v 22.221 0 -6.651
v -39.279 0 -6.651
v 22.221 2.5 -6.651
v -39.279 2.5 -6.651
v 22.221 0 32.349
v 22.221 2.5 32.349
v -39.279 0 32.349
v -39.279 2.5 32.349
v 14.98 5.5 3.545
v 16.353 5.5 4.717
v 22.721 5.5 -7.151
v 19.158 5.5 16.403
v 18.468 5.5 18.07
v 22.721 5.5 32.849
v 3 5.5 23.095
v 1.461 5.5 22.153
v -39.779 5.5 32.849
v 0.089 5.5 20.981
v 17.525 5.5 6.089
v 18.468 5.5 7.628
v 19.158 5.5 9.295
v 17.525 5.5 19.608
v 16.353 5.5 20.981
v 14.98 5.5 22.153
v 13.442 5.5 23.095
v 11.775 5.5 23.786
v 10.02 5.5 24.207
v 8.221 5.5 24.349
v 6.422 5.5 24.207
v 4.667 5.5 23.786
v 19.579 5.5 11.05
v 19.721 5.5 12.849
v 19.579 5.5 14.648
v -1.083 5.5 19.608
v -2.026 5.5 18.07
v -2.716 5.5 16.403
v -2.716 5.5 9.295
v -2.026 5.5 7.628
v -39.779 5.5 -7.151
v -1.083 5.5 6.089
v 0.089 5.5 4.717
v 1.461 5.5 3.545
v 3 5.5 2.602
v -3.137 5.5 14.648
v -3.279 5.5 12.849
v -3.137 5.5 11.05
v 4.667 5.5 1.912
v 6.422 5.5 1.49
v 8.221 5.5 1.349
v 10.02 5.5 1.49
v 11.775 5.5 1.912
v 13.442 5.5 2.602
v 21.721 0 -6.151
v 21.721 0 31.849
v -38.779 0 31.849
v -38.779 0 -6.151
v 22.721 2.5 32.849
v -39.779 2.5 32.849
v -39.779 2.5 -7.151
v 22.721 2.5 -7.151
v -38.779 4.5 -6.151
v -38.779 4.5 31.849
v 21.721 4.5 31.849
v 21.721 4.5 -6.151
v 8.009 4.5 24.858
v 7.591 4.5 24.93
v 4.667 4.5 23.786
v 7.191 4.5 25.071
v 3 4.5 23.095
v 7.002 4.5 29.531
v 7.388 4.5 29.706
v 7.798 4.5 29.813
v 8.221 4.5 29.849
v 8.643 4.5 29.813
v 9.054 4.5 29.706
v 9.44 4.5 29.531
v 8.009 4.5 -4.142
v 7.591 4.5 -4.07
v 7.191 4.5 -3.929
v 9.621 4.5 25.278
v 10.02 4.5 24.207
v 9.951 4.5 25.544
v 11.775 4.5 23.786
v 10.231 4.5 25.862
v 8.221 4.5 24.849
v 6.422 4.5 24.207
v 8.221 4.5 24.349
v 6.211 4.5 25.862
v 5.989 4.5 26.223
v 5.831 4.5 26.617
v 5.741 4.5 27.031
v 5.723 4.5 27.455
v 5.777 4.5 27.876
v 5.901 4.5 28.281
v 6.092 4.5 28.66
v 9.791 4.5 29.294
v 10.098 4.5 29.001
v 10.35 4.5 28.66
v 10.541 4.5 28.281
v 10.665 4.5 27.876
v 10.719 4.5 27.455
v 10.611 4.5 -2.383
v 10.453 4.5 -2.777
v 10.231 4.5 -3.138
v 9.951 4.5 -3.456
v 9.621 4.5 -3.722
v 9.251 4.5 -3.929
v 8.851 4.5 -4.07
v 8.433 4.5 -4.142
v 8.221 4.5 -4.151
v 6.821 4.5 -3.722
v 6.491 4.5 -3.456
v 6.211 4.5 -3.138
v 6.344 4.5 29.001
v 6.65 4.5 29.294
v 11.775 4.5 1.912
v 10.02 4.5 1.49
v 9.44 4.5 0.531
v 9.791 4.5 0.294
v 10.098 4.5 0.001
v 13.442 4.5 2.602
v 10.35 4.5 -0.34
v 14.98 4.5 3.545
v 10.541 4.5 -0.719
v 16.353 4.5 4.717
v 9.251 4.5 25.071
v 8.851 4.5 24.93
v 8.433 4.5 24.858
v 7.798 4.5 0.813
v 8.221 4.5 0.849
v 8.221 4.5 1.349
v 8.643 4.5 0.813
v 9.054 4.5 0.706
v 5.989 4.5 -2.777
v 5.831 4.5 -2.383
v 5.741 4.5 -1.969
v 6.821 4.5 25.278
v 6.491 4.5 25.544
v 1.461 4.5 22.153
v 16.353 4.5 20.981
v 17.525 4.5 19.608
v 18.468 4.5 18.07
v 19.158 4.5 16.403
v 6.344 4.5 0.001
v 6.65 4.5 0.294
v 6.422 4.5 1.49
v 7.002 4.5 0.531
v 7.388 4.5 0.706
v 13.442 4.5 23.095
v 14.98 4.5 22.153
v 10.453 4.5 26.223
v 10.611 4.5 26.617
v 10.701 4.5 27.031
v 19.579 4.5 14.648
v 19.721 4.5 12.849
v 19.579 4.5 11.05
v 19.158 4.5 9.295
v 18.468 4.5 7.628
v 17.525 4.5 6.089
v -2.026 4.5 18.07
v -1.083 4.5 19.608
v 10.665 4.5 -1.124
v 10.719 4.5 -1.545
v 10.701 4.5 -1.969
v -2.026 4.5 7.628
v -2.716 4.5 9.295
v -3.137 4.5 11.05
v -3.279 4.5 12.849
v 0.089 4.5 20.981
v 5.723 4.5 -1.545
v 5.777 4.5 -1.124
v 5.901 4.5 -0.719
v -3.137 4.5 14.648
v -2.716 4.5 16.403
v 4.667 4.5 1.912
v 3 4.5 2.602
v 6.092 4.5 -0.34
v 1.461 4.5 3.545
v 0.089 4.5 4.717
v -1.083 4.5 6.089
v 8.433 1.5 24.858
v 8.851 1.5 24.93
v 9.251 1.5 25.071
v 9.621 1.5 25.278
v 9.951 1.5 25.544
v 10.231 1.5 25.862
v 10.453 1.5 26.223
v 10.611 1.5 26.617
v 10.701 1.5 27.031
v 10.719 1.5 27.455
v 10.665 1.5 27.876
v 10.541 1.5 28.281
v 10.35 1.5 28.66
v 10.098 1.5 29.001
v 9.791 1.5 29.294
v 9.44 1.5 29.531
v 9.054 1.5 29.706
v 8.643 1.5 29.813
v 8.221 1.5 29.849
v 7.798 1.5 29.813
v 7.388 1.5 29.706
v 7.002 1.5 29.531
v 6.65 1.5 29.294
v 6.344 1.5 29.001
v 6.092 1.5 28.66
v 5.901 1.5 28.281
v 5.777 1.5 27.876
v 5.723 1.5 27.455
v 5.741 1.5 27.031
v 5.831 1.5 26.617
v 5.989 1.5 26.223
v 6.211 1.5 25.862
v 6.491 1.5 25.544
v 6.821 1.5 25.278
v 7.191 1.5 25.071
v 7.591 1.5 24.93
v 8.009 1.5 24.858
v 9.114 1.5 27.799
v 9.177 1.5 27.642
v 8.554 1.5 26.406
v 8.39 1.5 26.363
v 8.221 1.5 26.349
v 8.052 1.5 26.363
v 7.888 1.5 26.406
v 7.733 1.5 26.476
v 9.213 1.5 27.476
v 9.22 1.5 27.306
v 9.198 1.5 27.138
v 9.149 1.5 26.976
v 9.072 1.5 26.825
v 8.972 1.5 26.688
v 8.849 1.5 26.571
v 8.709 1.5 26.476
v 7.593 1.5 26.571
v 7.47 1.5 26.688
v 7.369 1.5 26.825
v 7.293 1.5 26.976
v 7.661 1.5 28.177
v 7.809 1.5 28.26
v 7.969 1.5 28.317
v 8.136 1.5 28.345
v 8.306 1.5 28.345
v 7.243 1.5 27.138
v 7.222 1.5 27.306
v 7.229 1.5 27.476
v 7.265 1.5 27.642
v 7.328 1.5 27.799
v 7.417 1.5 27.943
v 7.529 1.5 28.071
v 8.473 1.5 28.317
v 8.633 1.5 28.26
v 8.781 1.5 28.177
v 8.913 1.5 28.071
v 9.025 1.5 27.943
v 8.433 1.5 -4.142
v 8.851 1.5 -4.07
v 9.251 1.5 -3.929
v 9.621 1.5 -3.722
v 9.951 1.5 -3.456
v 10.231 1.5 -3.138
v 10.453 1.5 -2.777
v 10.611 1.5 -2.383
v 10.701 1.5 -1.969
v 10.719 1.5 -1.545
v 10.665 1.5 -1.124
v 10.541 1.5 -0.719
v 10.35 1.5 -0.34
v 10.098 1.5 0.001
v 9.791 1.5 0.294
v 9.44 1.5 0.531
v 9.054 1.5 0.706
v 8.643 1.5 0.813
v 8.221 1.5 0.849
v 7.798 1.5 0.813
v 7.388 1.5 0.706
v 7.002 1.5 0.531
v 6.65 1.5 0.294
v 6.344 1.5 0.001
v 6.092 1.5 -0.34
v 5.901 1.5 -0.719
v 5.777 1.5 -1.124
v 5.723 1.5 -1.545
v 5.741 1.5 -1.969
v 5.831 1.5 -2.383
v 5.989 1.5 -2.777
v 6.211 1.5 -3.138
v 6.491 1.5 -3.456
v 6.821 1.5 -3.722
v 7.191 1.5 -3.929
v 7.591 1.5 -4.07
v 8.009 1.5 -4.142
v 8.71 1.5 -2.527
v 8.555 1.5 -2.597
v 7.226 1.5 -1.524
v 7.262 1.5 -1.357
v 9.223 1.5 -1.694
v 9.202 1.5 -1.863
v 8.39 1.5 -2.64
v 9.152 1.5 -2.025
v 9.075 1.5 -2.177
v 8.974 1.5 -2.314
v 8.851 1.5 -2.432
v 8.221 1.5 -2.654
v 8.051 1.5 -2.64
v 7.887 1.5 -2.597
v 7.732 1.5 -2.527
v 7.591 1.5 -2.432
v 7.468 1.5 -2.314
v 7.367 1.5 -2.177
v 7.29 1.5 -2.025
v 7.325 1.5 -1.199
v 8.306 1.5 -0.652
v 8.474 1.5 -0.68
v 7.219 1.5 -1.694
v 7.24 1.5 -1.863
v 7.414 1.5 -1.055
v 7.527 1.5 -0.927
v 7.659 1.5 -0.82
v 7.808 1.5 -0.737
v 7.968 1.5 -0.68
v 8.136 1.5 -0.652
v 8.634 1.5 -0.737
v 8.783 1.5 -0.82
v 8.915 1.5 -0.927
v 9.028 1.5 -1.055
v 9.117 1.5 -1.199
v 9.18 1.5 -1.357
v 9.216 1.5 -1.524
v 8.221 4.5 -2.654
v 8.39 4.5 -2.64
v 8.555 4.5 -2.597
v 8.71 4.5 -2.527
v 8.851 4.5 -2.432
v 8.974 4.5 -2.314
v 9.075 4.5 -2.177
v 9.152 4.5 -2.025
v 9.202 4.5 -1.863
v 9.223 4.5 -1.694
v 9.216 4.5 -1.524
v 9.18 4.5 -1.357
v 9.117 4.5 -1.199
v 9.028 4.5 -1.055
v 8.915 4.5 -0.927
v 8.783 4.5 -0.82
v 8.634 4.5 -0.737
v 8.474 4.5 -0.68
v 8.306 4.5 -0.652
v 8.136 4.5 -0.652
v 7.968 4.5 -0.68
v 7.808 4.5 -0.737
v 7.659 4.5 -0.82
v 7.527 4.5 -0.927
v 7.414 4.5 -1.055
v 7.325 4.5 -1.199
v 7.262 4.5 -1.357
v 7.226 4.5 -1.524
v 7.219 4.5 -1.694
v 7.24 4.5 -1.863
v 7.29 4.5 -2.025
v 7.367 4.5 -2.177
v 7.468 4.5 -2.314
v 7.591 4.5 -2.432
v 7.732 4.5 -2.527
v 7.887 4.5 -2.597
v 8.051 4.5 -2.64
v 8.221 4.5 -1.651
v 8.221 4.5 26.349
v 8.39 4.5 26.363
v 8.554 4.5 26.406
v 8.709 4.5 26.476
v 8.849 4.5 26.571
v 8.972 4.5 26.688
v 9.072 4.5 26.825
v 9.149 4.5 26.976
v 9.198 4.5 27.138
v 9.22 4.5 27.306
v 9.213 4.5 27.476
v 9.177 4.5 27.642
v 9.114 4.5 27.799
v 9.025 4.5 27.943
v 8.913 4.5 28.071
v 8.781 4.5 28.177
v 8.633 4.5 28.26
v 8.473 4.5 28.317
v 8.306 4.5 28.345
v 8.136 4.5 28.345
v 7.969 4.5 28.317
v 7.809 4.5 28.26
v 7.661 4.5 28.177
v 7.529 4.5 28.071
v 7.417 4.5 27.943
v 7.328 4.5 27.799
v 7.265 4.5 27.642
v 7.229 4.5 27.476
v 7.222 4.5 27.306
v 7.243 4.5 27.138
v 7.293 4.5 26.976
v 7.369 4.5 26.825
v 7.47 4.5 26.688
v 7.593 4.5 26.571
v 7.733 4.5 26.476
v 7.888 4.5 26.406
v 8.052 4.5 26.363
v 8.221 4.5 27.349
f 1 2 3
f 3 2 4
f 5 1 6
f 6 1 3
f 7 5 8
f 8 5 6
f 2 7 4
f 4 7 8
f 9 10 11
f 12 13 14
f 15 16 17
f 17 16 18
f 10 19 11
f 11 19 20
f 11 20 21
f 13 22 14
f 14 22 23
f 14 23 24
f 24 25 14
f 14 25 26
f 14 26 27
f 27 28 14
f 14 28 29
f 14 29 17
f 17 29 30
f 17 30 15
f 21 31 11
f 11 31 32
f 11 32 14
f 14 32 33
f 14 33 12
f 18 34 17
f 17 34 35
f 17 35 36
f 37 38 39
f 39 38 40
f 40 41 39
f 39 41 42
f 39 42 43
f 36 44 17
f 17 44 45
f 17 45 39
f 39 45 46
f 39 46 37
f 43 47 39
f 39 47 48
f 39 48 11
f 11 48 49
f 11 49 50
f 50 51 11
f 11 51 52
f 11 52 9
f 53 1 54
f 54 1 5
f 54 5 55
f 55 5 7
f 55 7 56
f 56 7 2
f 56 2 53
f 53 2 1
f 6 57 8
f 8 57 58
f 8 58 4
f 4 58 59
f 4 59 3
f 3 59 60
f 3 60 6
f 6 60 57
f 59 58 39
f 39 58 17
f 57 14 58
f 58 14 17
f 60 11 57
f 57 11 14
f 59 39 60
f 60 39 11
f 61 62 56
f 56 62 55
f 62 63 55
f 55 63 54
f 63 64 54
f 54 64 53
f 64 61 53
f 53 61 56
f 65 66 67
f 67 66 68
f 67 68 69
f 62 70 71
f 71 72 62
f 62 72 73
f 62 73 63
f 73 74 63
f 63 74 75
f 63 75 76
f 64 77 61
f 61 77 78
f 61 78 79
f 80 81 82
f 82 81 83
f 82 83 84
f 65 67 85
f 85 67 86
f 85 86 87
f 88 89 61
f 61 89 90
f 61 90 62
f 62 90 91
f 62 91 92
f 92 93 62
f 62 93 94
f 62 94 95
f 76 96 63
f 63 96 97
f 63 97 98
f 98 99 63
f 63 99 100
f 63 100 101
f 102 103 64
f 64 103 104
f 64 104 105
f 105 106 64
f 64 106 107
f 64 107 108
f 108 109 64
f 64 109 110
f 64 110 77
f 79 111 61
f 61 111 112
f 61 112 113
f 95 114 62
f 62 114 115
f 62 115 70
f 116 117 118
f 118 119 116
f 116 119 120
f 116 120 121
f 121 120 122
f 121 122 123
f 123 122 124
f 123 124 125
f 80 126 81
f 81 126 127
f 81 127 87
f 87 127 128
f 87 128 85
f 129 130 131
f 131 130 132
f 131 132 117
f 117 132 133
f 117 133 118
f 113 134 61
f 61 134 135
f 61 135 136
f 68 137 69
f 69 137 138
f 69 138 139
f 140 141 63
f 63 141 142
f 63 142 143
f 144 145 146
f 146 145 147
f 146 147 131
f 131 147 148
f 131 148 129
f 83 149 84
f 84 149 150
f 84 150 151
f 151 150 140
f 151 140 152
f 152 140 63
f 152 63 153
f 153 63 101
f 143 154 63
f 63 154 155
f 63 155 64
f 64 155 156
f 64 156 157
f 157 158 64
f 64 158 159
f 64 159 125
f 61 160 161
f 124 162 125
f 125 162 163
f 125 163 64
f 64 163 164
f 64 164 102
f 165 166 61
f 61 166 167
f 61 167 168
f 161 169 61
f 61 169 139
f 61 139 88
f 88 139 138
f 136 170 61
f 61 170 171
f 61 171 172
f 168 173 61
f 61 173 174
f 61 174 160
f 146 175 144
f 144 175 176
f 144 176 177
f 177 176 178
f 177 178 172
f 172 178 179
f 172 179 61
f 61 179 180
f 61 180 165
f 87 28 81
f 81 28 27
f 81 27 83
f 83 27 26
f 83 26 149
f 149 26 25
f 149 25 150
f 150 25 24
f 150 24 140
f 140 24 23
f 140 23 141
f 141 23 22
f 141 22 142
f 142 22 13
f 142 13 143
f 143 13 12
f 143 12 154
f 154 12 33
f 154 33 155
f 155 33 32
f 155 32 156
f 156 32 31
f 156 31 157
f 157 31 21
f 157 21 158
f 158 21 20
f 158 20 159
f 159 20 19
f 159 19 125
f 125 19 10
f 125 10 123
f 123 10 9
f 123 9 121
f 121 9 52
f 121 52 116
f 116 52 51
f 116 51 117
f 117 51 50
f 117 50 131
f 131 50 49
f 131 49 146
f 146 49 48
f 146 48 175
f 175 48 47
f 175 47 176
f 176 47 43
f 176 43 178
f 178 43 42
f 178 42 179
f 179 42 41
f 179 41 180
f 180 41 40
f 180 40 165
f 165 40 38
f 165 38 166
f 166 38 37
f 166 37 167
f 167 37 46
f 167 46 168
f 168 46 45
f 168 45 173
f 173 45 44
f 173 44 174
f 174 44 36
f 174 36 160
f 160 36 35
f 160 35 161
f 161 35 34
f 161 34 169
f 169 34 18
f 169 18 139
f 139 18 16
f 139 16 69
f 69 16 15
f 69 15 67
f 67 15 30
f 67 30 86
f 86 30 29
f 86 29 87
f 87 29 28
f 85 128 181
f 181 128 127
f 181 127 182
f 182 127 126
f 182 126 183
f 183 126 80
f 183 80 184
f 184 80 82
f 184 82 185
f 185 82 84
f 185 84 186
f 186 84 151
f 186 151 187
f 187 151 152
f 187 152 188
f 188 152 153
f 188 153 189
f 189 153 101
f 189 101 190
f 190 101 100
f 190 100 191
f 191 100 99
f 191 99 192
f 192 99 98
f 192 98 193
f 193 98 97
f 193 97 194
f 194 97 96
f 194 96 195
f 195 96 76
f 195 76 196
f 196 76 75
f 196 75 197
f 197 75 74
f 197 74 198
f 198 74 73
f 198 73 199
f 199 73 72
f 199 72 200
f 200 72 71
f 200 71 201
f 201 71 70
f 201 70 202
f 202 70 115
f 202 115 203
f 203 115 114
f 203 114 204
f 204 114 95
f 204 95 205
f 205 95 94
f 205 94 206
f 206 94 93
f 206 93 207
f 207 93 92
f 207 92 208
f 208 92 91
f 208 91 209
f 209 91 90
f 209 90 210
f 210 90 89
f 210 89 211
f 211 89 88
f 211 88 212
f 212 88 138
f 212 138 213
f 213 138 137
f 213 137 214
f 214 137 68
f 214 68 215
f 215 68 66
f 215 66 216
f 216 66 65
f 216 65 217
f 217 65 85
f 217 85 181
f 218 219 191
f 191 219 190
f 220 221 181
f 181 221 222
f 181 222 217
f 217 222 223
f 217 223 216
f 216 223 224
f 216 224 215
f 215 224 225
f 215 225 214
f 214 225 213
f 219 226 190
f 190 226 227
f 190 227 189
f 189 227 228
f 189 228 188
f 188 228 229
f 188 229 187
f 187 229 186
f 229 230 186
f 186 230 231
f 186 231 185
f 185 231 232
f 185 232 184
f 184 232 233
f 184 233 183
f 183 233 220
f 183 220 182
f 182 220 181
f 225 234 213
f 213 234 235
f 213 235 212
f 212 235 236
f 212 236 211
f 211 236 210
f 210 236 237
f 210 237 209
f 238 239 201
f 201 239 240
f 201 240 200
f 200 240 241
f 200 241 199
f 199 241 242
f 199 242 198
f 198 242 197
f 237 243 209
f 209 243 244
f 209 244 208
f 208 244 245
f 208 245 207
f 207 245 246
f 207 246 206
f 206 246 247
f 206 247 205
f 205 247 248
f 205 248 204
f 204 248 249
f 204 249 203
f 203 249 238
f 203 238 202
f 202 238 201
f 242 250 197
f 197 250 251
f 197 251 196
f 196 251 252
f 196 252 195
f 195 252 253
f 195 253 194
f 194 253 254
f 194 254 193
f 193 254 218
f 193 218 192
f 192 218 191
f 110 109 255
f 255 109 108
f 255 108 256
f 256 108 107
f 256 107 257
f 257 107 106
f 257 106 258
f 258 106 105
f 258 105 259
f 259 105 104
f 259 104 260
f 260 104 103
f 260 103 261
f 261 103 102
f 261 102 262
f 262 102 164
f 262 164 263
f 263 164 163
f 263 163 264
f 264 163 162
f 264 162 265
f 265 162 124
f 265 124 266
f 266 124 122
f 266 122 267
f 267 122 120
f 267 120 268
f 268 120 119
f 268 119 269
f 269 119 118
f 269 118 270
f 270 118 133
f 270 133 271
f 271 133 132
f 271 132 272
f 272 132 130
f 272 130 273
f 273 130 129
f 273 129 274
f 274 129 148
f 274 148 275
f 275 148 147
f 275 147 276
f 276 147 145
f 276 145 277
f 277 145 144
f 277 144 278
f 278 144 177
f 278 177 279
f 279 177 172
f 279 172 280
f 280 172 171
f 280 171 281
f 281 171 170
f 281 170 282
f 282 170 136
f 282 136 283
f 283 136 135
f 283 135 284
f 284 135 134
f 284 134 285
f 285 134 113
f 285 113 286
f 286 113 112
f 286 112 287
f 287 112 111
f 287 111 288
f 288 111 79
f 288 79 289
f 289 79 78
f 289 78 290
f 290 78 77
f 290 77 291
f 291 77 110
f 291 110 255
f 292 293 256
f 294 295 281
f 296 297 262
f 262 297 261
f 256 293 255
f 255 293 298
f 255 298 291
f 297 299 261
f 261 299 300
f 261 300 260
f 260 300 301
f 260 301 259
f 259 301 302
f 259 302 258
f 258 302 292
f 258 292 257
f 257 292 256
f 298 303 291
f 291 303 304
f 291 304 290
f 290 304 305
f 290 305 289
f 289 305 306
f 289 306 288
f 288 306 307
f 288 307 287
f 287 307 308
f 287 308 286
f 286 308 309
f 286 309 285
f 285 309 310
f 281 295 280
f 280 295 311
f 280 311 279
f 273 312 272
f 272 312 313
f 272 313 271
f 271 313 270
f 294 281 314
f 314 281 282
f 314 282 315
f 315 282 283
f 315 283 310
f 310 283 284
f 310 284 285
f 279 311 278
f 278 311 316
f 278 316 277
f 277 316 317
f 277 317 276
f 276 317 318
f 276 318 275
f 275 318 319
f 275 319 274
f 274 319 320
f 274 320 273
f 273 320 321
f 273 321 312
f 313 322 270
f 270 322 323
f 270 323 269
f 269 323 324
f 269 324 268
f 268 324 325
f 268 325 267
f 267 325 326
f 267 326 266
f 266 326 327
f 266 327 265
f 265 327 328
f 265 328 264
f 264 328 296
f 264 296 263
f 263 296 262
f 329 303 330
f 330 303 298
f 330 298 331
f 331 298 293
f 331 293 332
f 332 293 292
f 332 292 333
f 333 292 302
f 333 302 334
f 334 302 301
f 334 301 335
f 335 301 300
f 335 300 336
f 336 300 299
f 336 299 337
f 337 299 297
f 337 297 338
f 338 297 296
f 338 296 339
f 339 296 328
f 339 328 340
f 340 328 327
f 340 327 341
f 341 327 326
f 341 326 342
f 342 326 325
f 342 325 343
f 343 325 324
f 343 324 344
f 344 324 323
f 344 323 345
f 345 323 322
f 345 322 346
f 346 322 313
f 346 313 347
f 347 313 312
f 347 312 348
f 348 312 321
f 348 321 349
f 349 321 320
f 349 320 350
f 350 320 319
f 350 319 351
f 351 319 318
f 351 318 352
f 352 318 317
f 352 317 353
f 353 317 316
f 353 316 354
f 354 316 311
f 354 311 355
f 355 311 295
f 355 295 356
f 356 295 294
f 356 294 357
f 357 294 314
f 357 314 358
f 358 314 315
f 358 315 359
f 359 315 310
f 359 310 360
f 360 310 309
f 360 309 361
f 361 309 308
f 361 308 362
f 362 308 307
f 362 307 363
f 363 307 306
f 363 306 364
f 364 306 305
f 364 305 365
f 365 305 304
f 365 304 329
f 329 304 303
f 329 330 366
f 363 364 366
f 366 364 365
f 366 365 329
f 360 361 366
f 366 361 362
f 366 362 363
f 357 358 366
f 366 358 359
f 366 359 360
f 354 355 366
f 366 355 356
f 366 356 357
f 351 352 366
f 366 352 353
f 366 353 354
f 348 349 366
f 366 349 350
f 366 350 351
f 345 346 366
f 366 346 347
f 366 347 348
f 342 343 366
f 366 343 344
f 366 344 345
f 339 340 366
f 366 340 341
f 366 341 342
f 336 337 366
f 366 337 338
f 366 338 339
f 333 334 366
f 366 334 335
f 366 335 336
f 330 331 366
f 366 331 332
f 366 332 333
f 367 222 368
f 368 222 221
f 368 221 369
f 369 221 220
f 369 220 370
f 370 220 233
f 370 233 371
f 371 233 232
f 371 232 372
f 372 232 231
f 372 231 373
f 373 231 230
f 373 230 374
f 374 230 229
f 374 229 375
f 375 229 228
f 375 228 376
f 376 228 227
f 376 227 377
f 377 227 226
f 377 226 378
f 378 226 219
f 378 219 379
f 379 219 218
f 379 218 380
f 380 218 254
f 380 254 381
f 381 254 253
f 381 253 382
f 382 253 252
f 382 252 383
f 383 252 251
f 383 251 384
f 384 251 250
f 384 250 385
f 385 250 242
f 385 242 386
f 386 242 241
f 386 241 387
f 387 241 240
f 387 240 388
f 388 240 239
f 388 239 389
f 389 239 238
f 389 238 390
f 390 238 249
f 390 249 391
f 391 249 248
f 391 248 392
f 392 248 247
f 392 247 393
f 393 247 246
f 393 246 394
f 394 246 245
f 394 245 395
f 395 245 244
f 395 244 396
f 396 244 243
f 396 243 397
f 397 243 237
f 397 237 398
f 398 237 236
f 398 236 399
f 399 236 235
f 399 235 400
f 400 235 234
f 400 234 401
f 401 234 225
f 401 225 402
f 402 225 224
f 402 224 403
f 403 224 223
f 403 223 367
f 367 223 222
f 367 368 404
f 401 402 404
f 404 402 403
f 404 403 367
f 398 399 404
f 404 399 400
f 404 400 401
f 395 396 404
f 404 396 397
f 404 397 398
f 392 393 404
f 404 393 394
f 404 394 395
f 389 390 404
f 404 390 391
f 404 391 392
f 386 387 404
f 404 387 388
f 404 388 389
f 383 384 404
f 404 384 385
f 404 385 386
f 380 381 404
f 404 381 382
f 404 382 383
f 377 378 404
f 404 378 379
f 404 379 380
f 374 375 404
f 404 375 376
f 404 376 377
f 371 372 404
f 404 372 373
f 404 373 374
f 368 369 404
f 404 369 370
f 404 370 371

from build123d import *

# Parameters (mm, degrees)
SKETCH_1_W          = 61.5
SKETCH_1_H          = 39
EXTRUDE_1_DEPTH     = 5.5
SKETCH_2_W          = 39
SKETCH_2_H          = 3
EXTRUDE_2_DEPTH     = 0.5
SKETCH_3_W          = 62
SKETCH_3_H          = 3
EXTRUDE_3_DEPTH     = 0.5
SKETCH_5_W          = 39.5
SKETCH_5_H          = 3
EXTRUDE_4_DEPTH     = 0.5
SKETCH_6_W          = 62.5
SKETCH_6_H          = 3
EXTRUDE_5_DEPTH     = 0.5
SKETCH_7_W          = 60.5
SKETCH_7_H          = 38
CUT_EXTRUDE_1_DEPTH = 4.5
SKETCH_8_R          = 11.5
CUT_EXTRUDE_2_DEPTH = 12
SKETCH_9_R          = 2.5
EXTRUDE_7_DEPTH     = 4
SKETCH_10_R         = 1.003246397
SKETCH_10_R_2       = 1
CUT_EXTRUDE_3_DEPTH = 3


with BuildPart() as part:
    # Эскиз1 → Бобышка-Вытянуть1 (new body)
    with BuildSketch(Plane(origin=(0, 0, 0), x_dir=(1, 0, 0), z_dir=(0, 1, 0))):
        with Locations((-8.529069767, -12.848837209)):
            Rectangle(SKETCH_1_W, SKETCH_1_H)
    extrude(amount=EXTRUDE_1_DEPTH)

    # Эскиз2 → Бобышка-Вытянуть2 (add)
    with BuildSketch(Plane.ZY.offset(39.279069767)):
        with Locations((12.848837209, 4)):
            Rectangle(SKETCH_2_W, SKETCH_2_H)
    extrude(amount=EXTRUDE_2_DEPTH)

    # Эскиз3 → Бобышка-Вытянуть3 (add)
    with BuildSketch(Plane.XY.offset(32.348837209)):
        with Locations((-8.779069767, 4)):
            Rectangle(SKETCH_3_W, SKETCH_3_H)
    extrude(amount=EXTRUDE_3_DEPTH)

    # Эскиз5 → Бобышка-Вытянуть4 (add)
    with BuildSketch(Plane(origin=(22.220930233, 0, 0), x_dir=(0, 0, -1), z_dir=(1, 0, 0))):
        with Locations((-13.098837209, 4)):
            Rectangle(SKETCH_5_W, SKETCH_5_H)
    extrude(amount=EXTRUDE_4_DEPTH)

    # Эскиз6 → Бобышка-Вытянуть5 (add)
    with BuildSketch(Plane(origin=(0, 0, -6.651162791), x_dir=(-1, 0, 0), z_dir=(0, 0, -1))):
        with Locations((8.529069767, 4)):
            Rectangle(SKETCH_6_W, SKETCH_6_H)
    extrude(amount=EXTRUDE_5_DEPTH)

    # Эскиз7 → Вырез-Вытянуть1 (cut)
    with BuildSketch(Plane.XZ):
        with Locations((-8.529069767, 12.848837209)):
            Rectangle(SKETCH_7_W, SKETCH_7_H)
    extrude(amount=-CUT_EXTRUDE_1_DEPTH, mode=Mode.SUBTRACT)

    # Эскиз8 → Вырез-Вытянуть2 (cut)
    with BuildSketch(Plane(origin=(0, 5.5, 0), x_dir=(1, 0, 0), z_dir=(0, 1, 0))):
        with Locations(Location((8.220930233, -12.848837209, 0), (0, 0, 270))):
            Circle(SKETCH_8_R)
    extrude(amount=-CUT_EXTRUDE_2_DEPTH, mode=Mode.SUBTRACT)

    # Эскиз9 → Бобышка-Вытянуть7 (add)
    with BuildSketch(Plane(origin=(0, 5.5, 0), x_dir=(1, 0, 0), z_dir=(0, 1, 0))):
        with Locations(Location((8.220930233, 1.651162791, 0), (0, 0, 270))):
            Circle(SKETCH_9_R)
        with Locations(Location((8.220930233, -27.348837209, 0), (0, 0, 270))):
            Circle(SKETCH_9_R)
    extrude(amount=-EXTRUDE_7_DEPTH)

    # Эскиз10 → Вырез-Вытянуть3 (cut)
    with BuildSketch(Plane.XZ.offset(-1.5)):
        with Locations(Location((8.220930233, -1.651162791, 0), (0, 0, 270))):
            Circle(SKETCH_10_R)
        with Locations(Location((8.220930233, 27.348837209, 0), (0, 0, 270))):
            Circle(SKETCH_10_R_2)
    extrude(amount=-CUT_EXTRUDE_3_DEPTH, mode=Mode.SUBTRACT)


solid = part.part
